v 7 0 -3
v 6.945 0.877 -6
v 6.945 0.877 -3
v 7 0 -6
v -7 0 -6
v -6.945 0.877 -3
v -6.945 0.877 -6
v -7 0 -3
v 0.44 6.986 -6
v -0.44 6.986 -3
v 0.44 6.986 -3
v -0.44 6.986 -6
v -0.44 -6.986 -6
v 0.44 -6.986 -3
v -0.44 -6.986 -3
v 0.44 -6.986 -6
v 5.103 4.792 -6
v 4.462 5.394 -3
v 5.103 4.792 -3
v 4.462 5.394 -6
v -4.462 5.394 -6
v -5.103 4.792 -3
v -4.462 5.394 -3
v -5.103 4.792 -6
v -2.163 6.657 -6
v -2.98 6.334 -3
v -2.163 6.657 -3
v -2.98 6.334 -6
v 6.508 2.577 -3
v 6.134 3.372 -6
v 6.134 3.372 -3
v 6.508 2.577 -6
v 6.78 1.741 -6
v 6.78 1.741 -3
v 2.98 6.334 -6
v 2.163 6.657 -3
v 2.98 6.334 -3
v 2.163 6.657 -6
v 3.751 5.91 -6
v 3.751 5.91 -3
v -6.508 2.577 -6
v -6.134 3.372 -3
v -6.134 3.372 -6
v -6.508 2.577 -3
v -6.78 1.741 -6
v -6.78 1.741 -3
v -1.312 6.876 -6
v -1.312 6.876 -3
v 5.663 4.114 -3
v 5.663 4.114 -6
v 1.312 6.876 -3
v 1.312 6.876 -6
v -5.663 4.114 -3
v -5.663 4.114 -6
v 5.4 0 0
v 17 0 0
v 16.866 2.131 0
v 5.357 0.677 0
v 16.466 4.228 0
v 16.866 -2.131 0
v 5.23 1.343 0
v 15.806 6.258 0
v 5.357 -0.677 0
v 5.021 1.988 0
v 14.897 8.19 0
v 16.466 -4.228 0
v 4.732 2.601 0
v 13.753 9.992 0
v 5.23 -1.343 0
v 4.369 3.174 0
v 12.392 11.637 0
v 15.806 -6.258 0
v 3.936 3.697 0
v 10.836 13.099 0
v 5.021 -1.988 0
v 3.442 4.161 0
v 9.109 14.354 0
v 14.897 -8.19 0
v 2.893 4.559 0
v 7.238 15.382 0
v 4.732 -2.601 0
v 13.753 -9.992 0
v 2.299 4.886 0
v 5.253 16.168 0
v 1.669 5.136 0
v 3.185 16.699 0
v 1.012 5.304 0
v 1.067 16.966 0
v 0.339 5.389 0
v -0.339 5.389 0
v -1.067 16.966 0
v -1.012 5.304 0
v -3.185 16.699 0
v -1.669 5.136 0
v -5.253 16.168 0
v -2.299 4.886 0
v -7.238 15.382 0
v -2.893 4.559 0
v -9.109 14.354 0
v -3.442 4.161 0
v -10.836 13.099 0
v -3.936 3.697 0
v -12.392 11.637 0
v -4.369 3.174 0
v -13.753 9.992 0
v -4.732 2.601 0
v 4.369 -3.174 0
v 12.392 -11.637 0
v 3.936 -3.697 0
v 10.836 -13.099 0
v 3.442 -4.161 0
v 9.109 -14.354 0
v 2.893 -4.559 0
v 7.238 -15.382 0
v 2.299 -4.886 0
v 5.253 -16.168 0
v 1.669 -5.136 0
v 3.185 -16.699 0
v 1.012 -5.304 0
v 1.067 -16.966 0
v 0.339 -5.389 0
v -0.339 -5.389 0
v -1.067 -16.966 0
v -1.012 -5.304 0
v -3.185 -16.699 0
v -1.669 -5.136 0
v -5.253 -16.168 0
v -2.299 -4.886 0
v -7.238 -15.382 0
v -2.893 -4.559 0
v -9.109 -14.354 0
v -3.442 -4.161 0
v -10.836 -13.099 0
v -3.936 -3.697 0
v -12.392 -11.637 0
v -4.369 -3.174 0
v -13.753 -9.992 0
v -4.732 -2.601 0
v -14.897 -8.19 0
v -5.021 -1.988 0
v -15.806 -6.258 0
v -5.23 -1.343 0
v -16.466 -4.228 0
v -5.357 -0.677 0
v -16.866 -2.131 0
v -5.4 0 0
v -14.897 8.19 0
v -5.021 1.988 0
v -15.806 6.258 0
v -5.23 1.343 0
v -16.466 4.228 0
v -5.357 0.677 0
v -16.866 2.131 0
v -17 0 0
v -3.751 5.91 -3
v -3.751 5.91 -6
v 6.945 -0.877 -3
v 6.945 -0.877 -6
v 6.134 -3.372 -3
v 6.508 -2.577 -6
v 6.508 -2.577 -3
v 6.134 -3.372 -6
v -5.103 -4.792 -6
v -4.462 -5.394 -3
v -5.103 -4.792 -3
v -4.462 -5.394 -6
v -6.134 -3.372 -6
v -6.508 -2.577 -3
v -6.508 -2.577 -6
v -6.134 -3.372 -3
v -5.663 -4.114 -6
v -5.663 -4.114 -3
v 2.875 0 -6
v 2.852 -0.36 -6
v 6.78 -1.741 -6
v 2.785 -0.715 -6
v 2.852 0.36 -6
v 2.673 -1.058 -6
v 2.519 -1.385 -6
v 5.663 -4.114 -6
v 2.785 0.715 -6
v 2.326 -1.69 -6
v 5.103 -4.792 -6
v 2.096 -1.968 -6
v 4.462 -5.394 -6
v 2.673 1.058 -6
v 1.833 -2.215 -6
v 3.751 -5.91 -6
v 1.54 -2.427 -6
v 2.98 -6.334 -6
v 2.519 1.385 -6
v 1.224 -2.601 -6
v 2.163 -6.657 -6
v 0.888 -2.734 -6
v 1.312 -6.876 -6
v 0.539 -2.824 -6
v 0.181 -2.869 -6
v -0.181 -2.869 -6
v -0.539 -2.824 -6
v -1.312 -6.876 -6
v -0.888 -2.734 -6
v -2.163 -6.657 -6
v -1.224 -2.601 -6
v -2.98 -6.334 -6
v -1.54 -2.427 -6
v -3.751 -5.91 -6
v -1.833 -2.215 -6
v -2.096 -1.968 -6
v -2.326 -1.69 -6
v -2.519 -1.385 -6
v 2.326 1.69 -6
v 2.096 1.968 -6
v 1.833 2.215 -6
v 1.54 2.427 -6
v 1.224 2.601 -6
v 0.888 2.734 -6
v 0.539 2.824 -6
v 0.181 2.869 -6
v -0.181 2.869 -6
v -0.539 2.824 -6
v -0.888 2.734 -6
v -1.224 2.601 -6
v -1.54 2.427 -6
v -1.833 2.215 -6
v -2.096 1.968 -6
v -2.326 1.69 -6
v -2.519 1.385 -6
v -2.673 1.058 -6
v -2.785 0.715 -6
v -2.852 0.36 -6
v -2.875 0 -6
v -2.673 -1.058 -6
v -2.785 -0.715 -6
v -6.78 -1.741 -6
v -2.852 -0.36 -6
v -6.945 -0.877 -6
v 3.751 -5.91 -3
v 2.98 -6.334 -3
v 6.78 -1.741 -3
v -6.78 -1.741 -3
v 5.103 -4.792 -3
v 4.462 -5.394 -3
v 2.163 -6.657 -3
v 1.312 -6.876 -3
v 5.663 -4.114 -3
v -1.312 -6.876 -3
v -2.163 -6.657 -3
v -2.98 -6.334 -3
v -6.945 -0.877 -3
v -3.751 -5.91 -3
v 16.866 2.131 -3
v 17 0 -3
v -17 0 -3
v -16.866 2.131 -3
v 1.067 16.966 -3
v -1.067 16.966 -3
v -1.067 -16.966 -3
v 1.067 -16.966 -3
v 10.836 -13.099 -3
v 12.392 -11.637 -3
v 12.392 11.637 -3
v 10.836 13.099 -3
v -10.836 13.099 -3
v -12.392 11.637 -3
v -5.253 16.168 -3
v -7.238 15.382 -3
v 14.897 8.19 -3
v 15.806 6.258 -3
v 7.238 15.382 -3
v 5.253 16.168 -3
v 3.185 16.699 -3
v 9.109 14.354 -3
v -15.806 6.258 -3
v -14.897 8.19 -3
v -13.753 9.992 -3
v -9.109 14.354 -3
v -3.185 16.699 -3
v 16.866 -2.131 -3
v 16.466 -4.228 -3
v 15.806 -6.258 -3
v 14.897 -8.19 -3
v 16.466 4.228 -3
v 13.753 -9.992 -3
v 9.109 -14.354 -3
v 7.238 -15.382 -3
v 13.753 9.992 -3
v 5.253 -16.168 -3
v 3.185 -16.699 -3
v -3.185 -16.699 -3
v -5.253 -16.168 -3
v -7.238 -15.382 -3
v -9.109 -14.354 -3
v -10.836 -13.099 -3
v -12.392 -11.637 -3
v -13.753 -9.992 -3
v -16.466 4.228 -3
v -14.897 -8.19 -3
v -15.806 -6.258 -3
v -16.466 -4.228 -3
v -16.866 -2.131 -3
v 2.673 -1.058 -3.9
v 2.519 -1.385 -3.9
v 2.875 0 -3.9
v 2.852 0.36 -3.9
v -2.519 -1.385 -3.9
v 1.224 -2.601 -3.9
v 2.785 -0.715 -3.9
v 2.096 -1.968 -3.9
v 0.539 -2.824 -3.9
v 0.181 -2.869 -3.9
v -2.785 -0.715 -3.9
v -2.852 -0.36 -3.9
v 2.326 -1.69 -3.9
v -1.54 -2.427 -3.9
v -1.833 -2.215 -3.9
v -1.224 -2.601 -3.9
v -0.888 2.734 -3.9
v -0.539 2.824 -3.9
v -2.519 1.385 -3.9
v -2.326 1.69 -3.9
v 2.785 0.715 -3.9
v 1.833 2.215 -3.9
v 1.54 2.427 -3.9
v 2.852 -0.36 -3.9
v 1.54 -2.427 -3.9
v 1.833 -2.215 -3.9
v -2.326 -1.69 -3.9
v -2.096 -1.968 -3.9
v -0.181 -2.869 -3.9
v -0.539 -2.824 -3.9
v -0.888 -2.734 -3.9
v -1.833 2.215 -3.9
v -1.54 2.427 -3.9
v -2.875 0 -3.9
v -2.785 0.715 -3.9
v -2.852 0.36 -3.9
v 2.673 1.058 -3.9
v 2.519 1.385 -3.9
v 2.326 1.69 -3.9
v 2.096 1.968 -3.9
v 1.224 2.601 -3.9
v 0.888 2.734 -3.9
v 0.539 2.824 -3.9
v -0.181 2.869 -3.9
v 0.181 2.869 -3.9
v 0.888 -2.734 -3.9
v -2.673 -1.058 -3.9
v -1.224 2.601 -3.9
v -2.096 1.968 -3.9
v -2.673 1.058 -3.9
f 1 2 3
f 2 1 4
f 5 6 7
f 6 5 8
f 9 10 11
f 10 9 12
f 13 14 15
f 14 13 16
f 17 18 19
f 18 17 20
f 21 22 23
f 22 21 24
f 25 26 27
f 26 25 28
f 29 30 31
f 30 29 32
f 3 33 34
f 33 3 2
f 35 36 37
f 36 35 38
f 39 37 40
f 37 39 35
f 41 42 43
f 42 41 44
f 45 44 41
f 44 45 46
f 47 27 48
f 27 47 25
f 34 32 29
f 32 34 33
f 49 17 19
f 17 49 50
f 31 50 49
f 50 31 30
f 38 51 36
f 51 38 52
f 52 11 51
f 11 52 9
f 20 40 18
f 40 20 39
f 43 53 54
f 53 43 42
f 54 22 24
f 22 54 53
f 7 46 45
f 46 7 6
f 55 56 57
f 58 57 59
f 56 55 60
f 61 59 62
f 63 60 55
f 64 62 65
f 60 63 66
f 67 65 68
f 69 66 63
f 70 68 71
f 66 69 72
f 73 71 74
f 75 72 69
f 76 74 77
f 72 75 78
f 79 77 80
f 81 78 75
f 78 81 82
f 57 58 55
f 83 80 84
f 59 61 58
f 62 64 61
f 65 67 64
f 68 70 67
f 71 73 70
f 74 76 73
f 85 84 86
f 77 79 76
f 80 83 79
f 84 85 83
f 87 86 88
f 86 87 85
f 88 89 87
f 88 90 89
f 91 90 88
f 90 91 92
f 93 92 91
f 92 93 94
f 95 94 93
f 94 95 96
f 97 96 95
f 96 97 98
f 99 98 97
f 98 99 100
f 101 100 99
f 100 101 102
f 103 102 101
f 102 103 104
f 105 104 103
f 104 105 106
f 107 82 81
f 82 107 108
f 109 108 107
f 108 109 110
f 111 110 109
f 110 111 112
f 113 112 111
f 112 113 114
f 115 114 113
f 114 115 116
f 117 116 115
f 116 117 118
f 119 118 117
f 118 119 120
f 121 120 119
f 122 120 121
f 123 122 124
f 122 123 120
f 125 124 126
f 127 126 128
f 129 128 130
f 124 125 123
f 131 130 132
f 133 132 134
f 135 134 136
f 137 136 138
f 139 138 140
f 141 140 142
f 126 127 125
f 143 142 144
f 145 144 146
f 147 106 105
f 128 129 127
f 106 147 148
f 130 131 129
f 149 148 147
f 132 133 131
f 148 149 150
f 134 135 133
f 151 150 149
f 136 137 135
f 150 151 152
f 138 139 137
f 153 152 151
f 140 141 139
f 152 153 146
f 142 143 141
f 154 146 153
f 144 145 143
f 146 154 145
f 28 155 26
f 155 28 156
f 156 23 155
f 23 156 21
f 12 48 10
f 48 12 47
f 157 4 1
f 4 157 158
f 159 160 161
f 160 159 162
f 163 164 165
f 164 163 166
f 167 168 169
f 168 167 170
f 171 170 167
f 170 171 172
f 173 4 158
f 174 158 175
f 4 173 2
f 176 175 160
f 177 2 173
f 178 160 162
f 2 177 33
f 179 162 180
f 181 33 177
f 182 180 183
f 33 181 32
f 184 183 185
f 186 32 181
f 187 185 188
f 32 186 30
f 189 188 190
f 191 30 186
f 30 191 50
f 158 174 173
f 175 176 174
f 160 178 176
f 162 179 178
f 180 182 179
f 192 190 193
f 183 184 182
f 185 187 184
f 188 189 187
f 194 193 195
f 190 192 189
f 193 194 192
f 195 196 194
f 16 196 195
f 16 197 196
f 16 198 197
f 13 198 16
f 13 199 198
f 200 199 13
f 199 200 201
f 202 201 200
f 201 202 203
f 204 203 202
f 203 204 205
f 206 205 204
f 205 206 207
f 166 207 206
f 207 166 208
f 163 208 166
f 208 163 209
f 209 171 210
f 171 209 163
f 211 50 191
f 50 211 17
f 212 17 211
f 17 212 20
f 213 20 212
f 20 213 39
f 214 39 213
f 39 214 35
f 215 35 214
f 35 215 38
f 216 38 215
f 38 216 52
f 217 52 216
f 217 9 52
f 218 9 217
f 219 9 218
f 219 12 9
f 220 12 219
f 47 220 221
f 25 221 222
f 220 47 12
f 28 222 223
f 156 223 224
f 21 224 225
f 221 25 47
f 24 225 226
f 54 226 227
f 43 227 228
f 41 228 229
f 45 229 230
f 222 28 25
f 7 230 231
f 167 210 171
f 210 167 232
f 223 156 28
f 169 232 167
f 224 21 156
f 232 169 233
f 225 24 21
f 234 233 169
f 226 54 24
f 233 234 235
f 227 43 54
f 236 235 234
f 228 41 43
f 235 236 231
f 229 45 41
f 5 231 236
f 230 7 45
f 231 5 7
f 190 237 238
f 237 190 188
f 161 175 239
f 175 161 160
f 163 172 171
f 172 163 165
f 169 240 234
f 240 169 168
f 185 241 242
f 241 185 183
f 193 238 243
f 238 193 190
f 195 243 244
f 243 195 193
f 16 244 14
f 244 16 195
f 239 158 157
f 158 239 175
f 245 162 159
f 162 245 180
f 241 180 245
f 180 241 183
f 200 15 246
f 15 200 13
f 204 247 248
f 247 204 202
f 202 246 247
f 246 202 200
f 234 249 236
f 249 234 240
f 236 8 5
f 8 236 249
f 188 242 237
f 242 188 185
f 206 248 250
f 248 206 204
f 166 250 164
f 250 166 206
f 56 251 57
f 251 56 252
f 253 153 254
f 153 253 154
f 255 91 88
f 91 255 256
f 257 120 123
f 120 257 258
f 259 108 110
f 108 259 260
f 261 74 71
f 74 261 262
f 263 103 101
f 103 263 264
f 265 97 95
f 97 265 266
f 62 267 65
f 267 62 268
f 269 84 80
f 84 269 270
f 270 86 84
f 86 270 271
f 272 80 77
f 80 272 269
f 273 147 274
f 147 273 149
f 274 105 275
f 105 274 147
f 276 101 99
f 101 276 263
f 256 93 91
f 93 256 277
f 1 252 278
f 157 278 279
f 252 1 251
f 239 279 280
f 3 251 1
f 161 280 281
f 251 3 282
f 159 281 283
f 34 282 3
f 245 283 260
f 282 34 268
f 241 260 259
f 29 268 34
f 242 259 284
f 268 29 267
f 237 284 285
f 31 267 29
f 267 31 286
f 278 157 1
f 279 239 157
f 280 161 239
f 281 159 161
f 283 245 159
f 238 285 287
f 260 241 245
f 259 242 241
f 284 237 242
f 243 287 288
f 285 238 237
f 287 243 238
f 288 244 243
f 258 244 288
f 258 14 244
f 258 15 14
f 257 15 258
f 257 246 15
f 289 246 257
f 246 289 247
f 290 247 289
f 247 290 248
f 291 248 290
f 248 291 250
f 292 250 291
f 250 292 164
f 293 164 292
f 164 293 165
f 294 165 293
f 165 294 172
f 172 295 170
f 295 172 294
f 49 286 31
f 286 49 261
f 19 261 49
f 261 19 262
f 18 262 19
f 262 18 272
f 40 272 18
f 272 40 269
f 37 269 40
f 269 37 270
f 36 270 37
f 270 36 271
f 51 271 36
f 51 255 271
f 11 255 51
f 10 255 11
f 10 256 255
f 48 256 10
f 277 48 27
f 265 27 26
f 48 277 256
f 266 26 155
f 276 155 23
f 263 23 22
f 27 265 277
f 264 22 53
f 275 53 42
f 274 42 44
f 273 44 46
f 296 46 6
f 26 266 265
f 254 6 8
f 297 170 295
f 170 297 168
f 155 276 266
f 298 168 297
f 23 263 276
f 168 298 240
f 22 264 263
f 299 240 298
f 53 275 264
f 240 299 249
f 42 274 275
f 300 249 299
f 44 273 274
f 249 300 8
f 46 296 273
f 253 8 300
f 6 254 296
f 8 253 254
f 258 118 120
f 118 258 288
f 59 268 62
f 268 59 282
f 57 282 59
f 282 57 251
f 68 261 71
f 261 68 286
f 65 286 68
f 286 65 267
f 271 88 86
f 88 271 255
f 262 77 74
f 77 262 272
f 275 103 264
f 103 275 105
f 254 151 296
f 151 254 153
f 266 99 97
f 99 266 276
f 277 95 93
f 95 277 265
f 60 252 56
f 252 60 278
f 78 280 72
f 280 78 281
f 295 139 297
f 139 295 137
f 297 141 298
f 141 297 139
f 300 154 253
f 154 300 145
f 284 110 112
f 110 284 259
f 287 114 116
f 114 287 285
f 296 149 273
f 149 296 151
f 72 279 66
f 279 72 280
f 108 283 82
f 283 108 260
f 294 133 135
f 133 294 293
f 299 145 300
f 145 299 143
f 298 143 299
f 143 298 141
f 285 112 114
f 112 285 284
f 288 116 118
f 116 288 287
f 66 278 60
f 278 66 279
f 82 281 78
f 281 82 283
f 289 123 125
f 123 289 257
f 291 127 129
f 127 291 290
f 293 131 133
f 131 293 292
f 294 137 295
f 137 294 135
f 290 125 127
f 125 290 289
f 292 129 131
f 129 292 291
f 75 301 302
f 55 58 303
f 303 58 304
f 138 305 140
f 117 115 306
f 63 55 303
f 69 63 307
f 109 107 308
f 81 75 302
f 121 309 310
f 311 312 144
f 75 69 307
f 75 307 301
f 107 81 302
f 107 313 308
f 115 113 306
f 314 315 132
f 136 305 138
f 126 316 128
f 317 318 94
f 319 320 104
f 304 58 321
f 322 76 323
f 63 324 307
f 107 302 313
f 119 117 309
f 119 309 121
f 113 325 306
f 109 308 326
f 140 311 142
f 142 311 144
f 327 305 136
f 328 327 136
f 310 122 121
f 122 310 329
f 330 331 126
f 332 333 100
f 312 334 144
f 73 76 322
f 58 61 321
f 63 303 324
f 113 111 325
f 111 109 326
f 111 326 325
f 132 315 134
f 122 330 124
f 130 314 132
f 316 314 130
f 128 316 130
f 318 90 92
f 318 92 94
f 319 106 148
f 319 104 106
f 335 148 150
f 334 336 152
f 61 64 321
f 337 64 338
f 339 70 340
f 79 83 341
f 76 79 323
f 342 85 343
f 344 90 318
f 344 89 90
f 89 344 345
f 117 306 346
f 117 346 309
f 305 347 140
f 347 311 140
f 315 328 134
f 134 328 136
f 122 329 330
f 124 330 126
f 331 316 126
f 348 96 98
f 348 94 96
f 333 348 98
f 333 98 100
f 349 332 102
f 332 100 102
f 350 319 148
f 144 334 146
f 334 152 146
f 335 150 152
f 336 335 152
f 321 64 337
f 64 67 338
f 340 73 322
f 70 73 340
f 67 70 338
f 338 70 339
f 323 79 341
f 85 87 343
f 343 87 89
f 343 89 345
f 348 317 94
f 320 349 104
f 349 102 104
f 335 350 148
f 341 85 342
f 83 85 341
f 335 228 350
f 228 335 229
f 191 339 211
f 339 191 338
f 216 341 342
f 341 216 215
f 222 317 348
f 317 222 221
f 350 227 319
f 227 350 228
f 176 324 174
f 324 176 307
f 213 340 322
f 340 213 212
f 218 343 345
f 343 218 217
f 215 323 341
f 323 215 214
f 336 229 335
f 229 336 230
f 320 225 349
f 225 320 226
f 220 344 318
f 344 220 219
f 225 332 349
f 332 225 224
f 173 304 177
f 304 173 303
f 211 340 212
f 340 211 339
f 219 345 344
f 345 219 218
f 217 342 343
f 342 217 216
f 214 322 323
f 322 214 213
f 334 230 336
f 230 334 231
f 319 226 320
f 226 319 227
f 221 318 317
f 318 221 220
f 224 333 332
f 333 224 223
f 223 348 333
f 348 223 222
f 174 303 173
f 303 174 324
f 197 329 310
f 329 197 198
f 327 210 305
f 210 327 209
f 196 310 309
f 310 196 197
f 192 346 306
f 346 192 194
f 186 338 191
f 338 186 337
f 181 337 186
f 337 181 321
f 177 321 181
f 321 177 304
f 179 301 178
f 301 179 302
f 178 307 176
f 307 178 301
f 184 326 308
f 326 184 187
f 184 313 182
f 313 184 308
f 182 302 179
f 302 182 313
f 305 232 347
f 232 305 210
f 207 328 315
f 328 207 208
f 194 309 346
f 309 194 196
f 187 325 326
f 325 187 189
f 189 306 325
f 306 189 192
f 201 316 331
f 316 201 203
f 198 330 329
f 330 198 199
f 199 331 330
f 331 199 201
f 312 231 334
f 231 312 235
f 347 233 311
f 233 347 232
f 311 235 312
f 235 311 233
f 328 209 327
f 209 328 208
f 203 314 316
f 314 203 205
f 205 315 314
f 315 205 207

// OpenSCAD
$fn = 50;


difference() {
	union() {
		translate(v = [0, 0, -6.0000000000]) {
			cylinder(h = 6, r = 7.0000000000);
		}
		translate(v = [0, 0, -3.0000000000]) {
			cylinder(h = 3, r = 17.0000000000);
		}
	}
	union() {
		translate(v = [0, 0, 0]) {
			rotate(a = [0, 0, 0]) {
				difference() {
					union() {
						#translate(v = [0, 0, -6.0000000000]) {
							cylinder(h = 6, r = 2.6000000000);
						}
						#translate(v = [0, 0, -3.9000000000]) {
							cylinder(h = 3.9000000000, r1 = 2.8750000000, r2 = 5.4000000000);
						}
						#translate(v = [0, 0, -6.0000000000]) {
							cylinder(h = 6, r = 2.8750000000);
						}
						#translate(v = [0, 0, -6.0000000000]) {
							cylinder(h = 6, r = 2.6000000000);
						}
					}
					union();
				}
			}
		}
	}
}
